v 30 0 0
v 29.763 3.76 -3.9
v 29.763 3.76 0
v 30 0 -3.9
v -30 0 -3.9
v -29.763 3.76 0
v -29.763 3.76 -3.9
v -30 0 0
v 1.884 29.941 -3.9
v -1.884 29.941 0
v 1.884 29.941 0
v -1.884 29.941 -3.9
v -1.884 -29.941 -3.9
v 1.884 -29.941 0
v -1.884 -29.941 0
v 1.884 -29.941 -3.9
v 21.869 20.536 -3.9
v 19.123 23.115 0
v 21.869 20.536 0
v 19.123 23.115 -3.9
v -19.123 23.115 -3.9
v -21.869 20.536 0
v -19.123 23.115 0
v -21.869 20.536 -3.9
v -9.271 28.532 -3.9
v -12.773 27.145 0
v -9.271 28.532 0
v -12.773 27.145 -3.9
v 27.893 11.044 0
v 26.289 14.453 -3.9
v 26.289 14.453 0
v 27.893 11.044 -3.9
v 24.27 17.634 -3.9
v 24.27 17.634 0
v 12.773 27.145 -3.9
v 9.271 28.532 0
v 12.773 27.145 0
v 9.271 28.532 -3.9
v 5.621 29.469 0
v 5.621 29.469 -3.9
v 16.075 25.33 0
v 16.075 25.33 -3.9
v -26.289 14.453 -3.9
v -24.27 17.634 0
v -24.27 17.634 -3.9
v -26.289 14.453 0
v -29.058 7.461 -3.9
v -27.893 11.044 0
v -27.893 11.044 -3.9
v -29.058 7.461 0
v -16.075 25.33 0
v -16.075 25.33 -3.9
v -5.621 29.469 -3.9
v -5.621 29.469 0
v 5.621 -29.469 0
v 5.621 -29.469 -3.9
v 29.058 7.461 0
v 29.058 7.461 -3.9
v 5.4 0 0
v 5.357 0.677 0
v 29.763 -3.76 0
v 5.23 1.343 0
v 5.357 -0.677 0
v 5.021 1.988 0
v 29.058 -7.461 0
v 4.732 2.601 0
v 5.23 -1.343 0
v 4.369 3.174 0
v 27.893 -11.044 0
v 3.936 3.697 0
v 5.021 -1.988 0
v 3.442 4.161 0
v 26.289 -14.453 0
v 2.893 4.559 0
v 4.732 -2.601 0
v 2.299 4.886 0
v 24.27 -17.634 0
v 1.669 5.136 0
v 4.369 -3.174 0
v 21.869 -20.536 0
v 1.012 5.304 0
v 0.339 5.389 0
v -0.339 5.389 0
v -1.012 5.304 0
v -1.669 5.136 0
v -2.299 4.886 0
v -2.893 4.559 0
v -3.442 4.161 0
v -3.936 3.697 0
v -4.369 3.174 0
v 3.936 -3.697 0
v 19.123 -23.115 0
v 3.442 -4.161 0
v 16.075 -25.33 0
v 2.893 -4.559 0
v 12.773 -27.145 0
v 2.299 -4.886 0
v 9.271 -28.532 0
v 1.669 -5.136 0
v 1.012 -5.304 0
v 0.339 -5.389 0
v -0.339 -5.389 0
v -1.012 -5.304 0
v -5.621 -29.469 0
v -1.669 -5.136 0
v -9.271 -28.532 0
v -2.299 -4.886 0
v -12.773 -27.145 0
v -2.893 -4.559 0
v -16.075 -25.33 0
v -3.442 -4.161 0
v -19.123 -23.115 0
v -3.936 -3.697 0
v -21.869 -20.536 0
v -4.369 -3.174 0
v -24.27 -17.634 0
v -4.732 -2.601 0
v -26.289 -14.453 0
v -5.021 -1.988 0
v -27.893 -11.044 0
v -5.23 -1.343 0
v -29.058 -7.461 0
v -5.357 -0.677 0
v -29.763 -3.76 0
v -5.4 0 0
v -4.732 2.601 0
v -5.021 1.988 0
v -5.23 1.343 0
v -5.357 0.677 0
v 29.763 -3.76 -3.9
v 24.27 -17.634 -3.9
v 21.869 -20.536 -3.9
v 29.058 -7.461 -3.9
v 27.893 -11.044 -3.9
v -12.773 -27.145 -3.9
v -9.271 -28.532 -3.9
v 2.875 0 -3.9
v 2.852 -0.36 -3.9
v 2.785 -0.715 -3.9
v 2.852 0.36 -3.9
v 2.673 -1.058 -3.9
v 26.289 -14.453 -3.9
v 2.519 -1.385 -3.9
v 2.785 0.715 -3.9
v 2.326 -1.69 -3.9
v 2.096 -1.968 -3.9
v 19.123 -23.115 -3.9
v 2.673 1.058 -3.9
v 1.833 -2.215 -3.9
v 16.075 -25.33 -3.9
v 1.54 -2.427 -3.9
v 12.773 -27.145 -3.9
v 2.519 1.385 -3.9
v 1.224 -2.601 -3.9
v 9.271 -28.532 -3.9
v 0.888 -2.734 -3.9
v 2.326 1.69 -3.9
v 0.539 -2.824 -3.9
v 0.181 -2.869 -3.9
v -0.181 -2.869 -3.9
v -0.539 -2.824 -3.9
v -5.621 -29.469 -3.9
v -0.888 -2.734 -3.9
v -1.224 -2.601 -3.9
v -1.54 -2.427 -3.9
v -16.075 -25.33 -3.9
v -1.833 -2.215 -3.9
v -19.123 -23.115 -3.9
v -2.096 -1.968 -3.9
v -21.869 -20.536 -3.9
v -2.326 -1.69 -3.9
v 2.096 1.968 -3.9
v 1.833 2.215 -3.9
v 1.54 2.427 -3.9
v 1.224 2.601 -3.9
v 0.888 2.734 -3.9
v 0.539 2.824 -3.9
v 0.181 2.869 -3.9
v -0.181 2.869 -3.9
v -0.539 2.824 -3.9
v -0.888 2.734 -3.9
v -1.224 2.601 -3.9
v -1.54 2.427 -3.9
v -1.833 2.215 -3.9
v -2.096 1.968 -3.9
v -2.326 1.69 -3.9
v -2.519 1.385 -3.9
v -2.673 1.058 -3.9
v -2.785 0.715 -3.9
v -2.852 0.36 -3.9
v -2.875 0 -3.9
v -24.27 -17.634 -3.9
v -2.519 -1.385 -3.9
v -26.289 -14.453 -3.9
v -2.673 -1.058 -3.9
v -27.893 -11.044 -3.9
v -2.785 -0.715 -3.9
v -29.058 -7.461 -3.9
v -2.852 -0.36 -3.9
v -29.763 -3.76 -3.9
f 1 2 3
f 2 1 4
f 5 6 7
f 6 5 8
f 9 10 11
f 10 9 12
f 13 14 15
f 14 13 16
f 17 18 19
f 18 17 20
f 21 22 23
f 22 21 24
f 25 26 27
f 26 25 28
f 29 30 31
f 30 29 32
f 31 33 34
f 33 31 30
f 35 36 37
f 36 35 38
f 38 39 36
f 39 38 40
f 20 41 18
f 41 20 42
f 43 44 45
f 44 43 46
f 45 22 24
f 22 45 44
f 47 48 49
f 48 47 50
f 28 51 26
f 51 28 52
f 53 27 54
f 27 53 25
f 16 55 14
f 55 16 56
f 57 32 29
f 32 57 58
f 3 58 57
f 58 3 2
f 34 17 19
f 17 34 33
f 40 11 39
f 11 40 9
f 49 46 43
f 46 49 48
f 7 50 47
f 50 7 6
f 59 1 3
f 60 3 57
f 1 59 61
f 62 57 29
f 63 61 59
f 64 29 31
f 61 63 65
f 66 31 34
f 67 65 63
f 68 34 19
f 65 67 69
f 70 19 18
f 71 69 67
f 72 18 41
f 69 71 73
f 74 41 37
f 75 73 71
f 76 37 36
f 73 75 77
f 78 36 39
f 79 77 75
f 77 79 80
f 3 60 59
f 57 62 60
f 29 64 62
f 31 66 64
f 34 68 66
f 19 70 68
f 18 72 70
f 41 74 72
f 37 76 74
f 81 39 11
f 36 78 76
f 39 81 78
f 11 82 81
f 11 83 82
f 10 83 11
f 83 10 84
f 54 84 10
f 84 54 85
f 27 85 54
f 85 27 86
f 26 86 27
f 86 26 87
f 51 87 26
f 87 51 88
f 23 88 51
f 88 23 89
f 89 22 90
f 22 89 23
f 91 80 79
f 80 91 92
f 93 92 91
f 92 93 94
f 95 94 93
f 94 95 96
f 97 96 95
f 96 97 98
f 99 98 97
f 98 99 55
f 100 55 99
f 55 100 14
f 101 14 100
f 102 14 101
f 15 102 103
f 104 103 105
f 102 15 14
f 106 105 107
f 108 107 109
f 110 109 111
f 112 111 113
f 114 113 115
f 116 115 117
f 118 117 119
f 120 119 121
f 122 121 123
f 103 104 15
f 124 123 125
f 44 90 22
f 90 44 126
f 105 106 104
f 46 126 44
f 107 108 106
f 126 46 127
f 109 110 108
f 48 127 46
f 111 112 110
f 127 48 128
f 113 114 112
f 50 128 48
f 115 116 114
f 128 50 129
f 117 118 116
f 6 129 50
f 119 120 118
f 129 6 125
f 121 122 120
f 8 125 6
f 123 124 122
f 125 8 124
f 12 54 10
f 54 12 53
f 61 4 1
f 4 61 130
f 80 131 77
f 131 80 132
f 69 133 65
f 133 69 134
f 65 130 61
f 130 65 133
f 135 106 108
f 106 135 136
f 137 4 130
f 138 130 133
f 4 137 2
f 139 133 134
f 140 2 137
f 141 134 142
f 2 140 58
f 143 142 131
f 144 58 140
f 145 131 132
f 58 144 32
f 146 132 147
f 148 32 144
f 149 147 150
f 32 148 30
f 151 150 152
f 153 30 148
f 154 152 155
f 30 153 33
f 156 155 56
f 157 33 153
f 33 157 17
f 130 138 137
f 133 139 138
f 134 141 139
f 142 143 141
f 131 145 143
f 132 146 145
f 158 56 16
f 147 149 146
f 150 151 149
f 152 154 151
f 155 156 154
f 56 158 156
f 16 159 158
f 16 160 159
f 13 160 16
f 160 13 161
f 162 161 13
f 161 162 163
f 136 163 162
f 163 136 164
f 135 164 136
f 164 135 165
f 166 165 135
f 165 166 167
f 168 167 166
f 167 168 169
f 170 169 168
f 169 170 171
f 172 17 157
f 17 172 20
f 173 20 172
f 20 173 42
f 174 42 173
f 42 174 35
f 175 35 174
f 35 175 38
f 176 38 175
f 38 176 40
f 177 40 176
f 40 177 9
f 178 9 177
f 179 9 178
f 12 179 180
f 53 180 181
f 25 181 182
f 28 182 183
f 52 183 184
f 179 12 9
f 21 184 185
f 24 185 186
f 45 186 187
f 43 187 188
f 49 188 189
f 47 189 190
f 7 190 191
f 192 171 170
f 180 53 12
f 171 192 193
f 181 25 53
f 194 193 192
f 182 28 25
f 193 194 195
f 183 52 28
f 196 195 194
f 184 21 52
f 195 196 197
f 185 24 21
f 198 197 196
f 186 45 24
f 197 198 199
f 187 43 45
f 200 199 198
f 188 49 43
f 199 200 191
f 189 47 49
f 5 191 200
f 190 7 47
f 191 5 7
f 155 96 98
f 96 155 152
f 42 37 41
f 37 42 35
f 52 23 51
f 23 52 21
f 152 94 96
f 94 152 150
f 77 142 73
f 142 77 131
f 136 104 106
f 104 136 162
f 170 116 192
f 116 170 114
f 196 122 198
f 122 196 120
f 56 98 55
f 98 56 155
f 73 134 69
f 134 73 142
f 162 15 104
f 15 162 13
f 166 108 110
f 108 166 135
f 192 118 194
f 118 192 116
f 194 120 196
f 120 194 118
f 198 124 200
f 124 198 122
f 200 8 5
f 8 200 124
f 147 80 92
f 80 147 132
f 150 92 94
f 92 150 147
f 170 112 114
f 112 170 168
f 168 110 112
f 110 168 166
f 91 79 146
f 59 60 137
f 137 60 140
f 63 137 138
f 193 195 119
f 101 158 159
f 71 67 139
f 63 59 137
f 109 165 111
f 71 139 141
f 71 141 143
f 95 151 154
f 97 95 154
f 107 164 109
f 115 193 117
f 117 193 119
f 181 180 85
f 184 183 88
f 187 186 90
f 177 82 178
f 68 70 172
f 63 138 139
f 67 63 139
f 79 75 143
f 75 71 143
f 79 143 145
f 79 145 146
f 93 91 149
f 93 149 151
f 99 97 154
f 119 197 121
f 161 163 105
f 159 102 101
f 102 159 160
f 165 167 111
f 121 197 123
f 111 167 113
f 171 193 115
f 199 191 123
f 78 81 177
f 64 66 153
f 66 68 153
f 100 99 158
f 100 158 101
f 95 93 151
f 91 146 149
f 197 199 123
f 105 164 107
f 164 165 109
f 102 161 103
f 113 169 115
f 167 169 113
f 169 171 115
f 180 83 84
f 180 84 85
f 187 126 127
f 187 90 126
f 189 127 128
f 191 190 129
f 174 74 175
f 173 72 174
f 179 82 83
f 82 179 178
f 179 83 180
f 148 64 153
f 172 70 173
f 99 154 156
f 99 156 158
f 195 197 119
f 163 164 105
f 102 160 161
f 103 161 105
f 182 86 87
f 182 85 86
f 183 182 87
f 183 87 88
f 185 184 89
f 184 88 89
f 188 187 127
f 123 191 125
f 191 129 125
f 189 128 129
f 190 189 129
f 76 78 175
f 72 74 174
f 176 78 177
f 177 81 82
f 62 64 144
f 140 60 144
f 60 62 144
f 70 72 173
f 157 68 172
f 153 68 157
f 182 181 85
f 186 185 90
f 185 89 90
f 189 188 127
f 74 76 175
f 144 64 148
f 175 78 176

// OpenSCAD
$fn = 50;


difference() {
	union() {
		translate(v = [0, 0, -3.9000000000]) {
			cylinder(h = 3.9000000000, r = 30.0000000000);
		}
		#translate(v = [0, 0, -6.9000000000]) {
			cylinder(h = 6.9000000000, r = 2.8750000000);
		}
	}
	union() {
		translate(v = [0, 0, 0]) {
			rotate(a = [0, 0, 0]) {
				difference() {
					union() {
						translate(v = [0, 0, -6.9000000000]) {
							cylinder(h = 6.9000000000, r = 2.6000000000);
						}
						translate(v = [0, 0, -3.9000000000]) {
							cylinder(h = 3.9000000000, r1 = 2.8750000000, r2 = 5.4000000000);
						}
						translate(v = [0, 0, -6.9000000000]) {
							cylinder(h = 6.9000000000, r = 2.8750000000);
						}
						translate(v = [0, 0, -6.9000000000]) {
							cylinder(h = 6.9000000000, r = 2.6000000000);
						}
					}
					union();
				}
			}
		}
	}
}
